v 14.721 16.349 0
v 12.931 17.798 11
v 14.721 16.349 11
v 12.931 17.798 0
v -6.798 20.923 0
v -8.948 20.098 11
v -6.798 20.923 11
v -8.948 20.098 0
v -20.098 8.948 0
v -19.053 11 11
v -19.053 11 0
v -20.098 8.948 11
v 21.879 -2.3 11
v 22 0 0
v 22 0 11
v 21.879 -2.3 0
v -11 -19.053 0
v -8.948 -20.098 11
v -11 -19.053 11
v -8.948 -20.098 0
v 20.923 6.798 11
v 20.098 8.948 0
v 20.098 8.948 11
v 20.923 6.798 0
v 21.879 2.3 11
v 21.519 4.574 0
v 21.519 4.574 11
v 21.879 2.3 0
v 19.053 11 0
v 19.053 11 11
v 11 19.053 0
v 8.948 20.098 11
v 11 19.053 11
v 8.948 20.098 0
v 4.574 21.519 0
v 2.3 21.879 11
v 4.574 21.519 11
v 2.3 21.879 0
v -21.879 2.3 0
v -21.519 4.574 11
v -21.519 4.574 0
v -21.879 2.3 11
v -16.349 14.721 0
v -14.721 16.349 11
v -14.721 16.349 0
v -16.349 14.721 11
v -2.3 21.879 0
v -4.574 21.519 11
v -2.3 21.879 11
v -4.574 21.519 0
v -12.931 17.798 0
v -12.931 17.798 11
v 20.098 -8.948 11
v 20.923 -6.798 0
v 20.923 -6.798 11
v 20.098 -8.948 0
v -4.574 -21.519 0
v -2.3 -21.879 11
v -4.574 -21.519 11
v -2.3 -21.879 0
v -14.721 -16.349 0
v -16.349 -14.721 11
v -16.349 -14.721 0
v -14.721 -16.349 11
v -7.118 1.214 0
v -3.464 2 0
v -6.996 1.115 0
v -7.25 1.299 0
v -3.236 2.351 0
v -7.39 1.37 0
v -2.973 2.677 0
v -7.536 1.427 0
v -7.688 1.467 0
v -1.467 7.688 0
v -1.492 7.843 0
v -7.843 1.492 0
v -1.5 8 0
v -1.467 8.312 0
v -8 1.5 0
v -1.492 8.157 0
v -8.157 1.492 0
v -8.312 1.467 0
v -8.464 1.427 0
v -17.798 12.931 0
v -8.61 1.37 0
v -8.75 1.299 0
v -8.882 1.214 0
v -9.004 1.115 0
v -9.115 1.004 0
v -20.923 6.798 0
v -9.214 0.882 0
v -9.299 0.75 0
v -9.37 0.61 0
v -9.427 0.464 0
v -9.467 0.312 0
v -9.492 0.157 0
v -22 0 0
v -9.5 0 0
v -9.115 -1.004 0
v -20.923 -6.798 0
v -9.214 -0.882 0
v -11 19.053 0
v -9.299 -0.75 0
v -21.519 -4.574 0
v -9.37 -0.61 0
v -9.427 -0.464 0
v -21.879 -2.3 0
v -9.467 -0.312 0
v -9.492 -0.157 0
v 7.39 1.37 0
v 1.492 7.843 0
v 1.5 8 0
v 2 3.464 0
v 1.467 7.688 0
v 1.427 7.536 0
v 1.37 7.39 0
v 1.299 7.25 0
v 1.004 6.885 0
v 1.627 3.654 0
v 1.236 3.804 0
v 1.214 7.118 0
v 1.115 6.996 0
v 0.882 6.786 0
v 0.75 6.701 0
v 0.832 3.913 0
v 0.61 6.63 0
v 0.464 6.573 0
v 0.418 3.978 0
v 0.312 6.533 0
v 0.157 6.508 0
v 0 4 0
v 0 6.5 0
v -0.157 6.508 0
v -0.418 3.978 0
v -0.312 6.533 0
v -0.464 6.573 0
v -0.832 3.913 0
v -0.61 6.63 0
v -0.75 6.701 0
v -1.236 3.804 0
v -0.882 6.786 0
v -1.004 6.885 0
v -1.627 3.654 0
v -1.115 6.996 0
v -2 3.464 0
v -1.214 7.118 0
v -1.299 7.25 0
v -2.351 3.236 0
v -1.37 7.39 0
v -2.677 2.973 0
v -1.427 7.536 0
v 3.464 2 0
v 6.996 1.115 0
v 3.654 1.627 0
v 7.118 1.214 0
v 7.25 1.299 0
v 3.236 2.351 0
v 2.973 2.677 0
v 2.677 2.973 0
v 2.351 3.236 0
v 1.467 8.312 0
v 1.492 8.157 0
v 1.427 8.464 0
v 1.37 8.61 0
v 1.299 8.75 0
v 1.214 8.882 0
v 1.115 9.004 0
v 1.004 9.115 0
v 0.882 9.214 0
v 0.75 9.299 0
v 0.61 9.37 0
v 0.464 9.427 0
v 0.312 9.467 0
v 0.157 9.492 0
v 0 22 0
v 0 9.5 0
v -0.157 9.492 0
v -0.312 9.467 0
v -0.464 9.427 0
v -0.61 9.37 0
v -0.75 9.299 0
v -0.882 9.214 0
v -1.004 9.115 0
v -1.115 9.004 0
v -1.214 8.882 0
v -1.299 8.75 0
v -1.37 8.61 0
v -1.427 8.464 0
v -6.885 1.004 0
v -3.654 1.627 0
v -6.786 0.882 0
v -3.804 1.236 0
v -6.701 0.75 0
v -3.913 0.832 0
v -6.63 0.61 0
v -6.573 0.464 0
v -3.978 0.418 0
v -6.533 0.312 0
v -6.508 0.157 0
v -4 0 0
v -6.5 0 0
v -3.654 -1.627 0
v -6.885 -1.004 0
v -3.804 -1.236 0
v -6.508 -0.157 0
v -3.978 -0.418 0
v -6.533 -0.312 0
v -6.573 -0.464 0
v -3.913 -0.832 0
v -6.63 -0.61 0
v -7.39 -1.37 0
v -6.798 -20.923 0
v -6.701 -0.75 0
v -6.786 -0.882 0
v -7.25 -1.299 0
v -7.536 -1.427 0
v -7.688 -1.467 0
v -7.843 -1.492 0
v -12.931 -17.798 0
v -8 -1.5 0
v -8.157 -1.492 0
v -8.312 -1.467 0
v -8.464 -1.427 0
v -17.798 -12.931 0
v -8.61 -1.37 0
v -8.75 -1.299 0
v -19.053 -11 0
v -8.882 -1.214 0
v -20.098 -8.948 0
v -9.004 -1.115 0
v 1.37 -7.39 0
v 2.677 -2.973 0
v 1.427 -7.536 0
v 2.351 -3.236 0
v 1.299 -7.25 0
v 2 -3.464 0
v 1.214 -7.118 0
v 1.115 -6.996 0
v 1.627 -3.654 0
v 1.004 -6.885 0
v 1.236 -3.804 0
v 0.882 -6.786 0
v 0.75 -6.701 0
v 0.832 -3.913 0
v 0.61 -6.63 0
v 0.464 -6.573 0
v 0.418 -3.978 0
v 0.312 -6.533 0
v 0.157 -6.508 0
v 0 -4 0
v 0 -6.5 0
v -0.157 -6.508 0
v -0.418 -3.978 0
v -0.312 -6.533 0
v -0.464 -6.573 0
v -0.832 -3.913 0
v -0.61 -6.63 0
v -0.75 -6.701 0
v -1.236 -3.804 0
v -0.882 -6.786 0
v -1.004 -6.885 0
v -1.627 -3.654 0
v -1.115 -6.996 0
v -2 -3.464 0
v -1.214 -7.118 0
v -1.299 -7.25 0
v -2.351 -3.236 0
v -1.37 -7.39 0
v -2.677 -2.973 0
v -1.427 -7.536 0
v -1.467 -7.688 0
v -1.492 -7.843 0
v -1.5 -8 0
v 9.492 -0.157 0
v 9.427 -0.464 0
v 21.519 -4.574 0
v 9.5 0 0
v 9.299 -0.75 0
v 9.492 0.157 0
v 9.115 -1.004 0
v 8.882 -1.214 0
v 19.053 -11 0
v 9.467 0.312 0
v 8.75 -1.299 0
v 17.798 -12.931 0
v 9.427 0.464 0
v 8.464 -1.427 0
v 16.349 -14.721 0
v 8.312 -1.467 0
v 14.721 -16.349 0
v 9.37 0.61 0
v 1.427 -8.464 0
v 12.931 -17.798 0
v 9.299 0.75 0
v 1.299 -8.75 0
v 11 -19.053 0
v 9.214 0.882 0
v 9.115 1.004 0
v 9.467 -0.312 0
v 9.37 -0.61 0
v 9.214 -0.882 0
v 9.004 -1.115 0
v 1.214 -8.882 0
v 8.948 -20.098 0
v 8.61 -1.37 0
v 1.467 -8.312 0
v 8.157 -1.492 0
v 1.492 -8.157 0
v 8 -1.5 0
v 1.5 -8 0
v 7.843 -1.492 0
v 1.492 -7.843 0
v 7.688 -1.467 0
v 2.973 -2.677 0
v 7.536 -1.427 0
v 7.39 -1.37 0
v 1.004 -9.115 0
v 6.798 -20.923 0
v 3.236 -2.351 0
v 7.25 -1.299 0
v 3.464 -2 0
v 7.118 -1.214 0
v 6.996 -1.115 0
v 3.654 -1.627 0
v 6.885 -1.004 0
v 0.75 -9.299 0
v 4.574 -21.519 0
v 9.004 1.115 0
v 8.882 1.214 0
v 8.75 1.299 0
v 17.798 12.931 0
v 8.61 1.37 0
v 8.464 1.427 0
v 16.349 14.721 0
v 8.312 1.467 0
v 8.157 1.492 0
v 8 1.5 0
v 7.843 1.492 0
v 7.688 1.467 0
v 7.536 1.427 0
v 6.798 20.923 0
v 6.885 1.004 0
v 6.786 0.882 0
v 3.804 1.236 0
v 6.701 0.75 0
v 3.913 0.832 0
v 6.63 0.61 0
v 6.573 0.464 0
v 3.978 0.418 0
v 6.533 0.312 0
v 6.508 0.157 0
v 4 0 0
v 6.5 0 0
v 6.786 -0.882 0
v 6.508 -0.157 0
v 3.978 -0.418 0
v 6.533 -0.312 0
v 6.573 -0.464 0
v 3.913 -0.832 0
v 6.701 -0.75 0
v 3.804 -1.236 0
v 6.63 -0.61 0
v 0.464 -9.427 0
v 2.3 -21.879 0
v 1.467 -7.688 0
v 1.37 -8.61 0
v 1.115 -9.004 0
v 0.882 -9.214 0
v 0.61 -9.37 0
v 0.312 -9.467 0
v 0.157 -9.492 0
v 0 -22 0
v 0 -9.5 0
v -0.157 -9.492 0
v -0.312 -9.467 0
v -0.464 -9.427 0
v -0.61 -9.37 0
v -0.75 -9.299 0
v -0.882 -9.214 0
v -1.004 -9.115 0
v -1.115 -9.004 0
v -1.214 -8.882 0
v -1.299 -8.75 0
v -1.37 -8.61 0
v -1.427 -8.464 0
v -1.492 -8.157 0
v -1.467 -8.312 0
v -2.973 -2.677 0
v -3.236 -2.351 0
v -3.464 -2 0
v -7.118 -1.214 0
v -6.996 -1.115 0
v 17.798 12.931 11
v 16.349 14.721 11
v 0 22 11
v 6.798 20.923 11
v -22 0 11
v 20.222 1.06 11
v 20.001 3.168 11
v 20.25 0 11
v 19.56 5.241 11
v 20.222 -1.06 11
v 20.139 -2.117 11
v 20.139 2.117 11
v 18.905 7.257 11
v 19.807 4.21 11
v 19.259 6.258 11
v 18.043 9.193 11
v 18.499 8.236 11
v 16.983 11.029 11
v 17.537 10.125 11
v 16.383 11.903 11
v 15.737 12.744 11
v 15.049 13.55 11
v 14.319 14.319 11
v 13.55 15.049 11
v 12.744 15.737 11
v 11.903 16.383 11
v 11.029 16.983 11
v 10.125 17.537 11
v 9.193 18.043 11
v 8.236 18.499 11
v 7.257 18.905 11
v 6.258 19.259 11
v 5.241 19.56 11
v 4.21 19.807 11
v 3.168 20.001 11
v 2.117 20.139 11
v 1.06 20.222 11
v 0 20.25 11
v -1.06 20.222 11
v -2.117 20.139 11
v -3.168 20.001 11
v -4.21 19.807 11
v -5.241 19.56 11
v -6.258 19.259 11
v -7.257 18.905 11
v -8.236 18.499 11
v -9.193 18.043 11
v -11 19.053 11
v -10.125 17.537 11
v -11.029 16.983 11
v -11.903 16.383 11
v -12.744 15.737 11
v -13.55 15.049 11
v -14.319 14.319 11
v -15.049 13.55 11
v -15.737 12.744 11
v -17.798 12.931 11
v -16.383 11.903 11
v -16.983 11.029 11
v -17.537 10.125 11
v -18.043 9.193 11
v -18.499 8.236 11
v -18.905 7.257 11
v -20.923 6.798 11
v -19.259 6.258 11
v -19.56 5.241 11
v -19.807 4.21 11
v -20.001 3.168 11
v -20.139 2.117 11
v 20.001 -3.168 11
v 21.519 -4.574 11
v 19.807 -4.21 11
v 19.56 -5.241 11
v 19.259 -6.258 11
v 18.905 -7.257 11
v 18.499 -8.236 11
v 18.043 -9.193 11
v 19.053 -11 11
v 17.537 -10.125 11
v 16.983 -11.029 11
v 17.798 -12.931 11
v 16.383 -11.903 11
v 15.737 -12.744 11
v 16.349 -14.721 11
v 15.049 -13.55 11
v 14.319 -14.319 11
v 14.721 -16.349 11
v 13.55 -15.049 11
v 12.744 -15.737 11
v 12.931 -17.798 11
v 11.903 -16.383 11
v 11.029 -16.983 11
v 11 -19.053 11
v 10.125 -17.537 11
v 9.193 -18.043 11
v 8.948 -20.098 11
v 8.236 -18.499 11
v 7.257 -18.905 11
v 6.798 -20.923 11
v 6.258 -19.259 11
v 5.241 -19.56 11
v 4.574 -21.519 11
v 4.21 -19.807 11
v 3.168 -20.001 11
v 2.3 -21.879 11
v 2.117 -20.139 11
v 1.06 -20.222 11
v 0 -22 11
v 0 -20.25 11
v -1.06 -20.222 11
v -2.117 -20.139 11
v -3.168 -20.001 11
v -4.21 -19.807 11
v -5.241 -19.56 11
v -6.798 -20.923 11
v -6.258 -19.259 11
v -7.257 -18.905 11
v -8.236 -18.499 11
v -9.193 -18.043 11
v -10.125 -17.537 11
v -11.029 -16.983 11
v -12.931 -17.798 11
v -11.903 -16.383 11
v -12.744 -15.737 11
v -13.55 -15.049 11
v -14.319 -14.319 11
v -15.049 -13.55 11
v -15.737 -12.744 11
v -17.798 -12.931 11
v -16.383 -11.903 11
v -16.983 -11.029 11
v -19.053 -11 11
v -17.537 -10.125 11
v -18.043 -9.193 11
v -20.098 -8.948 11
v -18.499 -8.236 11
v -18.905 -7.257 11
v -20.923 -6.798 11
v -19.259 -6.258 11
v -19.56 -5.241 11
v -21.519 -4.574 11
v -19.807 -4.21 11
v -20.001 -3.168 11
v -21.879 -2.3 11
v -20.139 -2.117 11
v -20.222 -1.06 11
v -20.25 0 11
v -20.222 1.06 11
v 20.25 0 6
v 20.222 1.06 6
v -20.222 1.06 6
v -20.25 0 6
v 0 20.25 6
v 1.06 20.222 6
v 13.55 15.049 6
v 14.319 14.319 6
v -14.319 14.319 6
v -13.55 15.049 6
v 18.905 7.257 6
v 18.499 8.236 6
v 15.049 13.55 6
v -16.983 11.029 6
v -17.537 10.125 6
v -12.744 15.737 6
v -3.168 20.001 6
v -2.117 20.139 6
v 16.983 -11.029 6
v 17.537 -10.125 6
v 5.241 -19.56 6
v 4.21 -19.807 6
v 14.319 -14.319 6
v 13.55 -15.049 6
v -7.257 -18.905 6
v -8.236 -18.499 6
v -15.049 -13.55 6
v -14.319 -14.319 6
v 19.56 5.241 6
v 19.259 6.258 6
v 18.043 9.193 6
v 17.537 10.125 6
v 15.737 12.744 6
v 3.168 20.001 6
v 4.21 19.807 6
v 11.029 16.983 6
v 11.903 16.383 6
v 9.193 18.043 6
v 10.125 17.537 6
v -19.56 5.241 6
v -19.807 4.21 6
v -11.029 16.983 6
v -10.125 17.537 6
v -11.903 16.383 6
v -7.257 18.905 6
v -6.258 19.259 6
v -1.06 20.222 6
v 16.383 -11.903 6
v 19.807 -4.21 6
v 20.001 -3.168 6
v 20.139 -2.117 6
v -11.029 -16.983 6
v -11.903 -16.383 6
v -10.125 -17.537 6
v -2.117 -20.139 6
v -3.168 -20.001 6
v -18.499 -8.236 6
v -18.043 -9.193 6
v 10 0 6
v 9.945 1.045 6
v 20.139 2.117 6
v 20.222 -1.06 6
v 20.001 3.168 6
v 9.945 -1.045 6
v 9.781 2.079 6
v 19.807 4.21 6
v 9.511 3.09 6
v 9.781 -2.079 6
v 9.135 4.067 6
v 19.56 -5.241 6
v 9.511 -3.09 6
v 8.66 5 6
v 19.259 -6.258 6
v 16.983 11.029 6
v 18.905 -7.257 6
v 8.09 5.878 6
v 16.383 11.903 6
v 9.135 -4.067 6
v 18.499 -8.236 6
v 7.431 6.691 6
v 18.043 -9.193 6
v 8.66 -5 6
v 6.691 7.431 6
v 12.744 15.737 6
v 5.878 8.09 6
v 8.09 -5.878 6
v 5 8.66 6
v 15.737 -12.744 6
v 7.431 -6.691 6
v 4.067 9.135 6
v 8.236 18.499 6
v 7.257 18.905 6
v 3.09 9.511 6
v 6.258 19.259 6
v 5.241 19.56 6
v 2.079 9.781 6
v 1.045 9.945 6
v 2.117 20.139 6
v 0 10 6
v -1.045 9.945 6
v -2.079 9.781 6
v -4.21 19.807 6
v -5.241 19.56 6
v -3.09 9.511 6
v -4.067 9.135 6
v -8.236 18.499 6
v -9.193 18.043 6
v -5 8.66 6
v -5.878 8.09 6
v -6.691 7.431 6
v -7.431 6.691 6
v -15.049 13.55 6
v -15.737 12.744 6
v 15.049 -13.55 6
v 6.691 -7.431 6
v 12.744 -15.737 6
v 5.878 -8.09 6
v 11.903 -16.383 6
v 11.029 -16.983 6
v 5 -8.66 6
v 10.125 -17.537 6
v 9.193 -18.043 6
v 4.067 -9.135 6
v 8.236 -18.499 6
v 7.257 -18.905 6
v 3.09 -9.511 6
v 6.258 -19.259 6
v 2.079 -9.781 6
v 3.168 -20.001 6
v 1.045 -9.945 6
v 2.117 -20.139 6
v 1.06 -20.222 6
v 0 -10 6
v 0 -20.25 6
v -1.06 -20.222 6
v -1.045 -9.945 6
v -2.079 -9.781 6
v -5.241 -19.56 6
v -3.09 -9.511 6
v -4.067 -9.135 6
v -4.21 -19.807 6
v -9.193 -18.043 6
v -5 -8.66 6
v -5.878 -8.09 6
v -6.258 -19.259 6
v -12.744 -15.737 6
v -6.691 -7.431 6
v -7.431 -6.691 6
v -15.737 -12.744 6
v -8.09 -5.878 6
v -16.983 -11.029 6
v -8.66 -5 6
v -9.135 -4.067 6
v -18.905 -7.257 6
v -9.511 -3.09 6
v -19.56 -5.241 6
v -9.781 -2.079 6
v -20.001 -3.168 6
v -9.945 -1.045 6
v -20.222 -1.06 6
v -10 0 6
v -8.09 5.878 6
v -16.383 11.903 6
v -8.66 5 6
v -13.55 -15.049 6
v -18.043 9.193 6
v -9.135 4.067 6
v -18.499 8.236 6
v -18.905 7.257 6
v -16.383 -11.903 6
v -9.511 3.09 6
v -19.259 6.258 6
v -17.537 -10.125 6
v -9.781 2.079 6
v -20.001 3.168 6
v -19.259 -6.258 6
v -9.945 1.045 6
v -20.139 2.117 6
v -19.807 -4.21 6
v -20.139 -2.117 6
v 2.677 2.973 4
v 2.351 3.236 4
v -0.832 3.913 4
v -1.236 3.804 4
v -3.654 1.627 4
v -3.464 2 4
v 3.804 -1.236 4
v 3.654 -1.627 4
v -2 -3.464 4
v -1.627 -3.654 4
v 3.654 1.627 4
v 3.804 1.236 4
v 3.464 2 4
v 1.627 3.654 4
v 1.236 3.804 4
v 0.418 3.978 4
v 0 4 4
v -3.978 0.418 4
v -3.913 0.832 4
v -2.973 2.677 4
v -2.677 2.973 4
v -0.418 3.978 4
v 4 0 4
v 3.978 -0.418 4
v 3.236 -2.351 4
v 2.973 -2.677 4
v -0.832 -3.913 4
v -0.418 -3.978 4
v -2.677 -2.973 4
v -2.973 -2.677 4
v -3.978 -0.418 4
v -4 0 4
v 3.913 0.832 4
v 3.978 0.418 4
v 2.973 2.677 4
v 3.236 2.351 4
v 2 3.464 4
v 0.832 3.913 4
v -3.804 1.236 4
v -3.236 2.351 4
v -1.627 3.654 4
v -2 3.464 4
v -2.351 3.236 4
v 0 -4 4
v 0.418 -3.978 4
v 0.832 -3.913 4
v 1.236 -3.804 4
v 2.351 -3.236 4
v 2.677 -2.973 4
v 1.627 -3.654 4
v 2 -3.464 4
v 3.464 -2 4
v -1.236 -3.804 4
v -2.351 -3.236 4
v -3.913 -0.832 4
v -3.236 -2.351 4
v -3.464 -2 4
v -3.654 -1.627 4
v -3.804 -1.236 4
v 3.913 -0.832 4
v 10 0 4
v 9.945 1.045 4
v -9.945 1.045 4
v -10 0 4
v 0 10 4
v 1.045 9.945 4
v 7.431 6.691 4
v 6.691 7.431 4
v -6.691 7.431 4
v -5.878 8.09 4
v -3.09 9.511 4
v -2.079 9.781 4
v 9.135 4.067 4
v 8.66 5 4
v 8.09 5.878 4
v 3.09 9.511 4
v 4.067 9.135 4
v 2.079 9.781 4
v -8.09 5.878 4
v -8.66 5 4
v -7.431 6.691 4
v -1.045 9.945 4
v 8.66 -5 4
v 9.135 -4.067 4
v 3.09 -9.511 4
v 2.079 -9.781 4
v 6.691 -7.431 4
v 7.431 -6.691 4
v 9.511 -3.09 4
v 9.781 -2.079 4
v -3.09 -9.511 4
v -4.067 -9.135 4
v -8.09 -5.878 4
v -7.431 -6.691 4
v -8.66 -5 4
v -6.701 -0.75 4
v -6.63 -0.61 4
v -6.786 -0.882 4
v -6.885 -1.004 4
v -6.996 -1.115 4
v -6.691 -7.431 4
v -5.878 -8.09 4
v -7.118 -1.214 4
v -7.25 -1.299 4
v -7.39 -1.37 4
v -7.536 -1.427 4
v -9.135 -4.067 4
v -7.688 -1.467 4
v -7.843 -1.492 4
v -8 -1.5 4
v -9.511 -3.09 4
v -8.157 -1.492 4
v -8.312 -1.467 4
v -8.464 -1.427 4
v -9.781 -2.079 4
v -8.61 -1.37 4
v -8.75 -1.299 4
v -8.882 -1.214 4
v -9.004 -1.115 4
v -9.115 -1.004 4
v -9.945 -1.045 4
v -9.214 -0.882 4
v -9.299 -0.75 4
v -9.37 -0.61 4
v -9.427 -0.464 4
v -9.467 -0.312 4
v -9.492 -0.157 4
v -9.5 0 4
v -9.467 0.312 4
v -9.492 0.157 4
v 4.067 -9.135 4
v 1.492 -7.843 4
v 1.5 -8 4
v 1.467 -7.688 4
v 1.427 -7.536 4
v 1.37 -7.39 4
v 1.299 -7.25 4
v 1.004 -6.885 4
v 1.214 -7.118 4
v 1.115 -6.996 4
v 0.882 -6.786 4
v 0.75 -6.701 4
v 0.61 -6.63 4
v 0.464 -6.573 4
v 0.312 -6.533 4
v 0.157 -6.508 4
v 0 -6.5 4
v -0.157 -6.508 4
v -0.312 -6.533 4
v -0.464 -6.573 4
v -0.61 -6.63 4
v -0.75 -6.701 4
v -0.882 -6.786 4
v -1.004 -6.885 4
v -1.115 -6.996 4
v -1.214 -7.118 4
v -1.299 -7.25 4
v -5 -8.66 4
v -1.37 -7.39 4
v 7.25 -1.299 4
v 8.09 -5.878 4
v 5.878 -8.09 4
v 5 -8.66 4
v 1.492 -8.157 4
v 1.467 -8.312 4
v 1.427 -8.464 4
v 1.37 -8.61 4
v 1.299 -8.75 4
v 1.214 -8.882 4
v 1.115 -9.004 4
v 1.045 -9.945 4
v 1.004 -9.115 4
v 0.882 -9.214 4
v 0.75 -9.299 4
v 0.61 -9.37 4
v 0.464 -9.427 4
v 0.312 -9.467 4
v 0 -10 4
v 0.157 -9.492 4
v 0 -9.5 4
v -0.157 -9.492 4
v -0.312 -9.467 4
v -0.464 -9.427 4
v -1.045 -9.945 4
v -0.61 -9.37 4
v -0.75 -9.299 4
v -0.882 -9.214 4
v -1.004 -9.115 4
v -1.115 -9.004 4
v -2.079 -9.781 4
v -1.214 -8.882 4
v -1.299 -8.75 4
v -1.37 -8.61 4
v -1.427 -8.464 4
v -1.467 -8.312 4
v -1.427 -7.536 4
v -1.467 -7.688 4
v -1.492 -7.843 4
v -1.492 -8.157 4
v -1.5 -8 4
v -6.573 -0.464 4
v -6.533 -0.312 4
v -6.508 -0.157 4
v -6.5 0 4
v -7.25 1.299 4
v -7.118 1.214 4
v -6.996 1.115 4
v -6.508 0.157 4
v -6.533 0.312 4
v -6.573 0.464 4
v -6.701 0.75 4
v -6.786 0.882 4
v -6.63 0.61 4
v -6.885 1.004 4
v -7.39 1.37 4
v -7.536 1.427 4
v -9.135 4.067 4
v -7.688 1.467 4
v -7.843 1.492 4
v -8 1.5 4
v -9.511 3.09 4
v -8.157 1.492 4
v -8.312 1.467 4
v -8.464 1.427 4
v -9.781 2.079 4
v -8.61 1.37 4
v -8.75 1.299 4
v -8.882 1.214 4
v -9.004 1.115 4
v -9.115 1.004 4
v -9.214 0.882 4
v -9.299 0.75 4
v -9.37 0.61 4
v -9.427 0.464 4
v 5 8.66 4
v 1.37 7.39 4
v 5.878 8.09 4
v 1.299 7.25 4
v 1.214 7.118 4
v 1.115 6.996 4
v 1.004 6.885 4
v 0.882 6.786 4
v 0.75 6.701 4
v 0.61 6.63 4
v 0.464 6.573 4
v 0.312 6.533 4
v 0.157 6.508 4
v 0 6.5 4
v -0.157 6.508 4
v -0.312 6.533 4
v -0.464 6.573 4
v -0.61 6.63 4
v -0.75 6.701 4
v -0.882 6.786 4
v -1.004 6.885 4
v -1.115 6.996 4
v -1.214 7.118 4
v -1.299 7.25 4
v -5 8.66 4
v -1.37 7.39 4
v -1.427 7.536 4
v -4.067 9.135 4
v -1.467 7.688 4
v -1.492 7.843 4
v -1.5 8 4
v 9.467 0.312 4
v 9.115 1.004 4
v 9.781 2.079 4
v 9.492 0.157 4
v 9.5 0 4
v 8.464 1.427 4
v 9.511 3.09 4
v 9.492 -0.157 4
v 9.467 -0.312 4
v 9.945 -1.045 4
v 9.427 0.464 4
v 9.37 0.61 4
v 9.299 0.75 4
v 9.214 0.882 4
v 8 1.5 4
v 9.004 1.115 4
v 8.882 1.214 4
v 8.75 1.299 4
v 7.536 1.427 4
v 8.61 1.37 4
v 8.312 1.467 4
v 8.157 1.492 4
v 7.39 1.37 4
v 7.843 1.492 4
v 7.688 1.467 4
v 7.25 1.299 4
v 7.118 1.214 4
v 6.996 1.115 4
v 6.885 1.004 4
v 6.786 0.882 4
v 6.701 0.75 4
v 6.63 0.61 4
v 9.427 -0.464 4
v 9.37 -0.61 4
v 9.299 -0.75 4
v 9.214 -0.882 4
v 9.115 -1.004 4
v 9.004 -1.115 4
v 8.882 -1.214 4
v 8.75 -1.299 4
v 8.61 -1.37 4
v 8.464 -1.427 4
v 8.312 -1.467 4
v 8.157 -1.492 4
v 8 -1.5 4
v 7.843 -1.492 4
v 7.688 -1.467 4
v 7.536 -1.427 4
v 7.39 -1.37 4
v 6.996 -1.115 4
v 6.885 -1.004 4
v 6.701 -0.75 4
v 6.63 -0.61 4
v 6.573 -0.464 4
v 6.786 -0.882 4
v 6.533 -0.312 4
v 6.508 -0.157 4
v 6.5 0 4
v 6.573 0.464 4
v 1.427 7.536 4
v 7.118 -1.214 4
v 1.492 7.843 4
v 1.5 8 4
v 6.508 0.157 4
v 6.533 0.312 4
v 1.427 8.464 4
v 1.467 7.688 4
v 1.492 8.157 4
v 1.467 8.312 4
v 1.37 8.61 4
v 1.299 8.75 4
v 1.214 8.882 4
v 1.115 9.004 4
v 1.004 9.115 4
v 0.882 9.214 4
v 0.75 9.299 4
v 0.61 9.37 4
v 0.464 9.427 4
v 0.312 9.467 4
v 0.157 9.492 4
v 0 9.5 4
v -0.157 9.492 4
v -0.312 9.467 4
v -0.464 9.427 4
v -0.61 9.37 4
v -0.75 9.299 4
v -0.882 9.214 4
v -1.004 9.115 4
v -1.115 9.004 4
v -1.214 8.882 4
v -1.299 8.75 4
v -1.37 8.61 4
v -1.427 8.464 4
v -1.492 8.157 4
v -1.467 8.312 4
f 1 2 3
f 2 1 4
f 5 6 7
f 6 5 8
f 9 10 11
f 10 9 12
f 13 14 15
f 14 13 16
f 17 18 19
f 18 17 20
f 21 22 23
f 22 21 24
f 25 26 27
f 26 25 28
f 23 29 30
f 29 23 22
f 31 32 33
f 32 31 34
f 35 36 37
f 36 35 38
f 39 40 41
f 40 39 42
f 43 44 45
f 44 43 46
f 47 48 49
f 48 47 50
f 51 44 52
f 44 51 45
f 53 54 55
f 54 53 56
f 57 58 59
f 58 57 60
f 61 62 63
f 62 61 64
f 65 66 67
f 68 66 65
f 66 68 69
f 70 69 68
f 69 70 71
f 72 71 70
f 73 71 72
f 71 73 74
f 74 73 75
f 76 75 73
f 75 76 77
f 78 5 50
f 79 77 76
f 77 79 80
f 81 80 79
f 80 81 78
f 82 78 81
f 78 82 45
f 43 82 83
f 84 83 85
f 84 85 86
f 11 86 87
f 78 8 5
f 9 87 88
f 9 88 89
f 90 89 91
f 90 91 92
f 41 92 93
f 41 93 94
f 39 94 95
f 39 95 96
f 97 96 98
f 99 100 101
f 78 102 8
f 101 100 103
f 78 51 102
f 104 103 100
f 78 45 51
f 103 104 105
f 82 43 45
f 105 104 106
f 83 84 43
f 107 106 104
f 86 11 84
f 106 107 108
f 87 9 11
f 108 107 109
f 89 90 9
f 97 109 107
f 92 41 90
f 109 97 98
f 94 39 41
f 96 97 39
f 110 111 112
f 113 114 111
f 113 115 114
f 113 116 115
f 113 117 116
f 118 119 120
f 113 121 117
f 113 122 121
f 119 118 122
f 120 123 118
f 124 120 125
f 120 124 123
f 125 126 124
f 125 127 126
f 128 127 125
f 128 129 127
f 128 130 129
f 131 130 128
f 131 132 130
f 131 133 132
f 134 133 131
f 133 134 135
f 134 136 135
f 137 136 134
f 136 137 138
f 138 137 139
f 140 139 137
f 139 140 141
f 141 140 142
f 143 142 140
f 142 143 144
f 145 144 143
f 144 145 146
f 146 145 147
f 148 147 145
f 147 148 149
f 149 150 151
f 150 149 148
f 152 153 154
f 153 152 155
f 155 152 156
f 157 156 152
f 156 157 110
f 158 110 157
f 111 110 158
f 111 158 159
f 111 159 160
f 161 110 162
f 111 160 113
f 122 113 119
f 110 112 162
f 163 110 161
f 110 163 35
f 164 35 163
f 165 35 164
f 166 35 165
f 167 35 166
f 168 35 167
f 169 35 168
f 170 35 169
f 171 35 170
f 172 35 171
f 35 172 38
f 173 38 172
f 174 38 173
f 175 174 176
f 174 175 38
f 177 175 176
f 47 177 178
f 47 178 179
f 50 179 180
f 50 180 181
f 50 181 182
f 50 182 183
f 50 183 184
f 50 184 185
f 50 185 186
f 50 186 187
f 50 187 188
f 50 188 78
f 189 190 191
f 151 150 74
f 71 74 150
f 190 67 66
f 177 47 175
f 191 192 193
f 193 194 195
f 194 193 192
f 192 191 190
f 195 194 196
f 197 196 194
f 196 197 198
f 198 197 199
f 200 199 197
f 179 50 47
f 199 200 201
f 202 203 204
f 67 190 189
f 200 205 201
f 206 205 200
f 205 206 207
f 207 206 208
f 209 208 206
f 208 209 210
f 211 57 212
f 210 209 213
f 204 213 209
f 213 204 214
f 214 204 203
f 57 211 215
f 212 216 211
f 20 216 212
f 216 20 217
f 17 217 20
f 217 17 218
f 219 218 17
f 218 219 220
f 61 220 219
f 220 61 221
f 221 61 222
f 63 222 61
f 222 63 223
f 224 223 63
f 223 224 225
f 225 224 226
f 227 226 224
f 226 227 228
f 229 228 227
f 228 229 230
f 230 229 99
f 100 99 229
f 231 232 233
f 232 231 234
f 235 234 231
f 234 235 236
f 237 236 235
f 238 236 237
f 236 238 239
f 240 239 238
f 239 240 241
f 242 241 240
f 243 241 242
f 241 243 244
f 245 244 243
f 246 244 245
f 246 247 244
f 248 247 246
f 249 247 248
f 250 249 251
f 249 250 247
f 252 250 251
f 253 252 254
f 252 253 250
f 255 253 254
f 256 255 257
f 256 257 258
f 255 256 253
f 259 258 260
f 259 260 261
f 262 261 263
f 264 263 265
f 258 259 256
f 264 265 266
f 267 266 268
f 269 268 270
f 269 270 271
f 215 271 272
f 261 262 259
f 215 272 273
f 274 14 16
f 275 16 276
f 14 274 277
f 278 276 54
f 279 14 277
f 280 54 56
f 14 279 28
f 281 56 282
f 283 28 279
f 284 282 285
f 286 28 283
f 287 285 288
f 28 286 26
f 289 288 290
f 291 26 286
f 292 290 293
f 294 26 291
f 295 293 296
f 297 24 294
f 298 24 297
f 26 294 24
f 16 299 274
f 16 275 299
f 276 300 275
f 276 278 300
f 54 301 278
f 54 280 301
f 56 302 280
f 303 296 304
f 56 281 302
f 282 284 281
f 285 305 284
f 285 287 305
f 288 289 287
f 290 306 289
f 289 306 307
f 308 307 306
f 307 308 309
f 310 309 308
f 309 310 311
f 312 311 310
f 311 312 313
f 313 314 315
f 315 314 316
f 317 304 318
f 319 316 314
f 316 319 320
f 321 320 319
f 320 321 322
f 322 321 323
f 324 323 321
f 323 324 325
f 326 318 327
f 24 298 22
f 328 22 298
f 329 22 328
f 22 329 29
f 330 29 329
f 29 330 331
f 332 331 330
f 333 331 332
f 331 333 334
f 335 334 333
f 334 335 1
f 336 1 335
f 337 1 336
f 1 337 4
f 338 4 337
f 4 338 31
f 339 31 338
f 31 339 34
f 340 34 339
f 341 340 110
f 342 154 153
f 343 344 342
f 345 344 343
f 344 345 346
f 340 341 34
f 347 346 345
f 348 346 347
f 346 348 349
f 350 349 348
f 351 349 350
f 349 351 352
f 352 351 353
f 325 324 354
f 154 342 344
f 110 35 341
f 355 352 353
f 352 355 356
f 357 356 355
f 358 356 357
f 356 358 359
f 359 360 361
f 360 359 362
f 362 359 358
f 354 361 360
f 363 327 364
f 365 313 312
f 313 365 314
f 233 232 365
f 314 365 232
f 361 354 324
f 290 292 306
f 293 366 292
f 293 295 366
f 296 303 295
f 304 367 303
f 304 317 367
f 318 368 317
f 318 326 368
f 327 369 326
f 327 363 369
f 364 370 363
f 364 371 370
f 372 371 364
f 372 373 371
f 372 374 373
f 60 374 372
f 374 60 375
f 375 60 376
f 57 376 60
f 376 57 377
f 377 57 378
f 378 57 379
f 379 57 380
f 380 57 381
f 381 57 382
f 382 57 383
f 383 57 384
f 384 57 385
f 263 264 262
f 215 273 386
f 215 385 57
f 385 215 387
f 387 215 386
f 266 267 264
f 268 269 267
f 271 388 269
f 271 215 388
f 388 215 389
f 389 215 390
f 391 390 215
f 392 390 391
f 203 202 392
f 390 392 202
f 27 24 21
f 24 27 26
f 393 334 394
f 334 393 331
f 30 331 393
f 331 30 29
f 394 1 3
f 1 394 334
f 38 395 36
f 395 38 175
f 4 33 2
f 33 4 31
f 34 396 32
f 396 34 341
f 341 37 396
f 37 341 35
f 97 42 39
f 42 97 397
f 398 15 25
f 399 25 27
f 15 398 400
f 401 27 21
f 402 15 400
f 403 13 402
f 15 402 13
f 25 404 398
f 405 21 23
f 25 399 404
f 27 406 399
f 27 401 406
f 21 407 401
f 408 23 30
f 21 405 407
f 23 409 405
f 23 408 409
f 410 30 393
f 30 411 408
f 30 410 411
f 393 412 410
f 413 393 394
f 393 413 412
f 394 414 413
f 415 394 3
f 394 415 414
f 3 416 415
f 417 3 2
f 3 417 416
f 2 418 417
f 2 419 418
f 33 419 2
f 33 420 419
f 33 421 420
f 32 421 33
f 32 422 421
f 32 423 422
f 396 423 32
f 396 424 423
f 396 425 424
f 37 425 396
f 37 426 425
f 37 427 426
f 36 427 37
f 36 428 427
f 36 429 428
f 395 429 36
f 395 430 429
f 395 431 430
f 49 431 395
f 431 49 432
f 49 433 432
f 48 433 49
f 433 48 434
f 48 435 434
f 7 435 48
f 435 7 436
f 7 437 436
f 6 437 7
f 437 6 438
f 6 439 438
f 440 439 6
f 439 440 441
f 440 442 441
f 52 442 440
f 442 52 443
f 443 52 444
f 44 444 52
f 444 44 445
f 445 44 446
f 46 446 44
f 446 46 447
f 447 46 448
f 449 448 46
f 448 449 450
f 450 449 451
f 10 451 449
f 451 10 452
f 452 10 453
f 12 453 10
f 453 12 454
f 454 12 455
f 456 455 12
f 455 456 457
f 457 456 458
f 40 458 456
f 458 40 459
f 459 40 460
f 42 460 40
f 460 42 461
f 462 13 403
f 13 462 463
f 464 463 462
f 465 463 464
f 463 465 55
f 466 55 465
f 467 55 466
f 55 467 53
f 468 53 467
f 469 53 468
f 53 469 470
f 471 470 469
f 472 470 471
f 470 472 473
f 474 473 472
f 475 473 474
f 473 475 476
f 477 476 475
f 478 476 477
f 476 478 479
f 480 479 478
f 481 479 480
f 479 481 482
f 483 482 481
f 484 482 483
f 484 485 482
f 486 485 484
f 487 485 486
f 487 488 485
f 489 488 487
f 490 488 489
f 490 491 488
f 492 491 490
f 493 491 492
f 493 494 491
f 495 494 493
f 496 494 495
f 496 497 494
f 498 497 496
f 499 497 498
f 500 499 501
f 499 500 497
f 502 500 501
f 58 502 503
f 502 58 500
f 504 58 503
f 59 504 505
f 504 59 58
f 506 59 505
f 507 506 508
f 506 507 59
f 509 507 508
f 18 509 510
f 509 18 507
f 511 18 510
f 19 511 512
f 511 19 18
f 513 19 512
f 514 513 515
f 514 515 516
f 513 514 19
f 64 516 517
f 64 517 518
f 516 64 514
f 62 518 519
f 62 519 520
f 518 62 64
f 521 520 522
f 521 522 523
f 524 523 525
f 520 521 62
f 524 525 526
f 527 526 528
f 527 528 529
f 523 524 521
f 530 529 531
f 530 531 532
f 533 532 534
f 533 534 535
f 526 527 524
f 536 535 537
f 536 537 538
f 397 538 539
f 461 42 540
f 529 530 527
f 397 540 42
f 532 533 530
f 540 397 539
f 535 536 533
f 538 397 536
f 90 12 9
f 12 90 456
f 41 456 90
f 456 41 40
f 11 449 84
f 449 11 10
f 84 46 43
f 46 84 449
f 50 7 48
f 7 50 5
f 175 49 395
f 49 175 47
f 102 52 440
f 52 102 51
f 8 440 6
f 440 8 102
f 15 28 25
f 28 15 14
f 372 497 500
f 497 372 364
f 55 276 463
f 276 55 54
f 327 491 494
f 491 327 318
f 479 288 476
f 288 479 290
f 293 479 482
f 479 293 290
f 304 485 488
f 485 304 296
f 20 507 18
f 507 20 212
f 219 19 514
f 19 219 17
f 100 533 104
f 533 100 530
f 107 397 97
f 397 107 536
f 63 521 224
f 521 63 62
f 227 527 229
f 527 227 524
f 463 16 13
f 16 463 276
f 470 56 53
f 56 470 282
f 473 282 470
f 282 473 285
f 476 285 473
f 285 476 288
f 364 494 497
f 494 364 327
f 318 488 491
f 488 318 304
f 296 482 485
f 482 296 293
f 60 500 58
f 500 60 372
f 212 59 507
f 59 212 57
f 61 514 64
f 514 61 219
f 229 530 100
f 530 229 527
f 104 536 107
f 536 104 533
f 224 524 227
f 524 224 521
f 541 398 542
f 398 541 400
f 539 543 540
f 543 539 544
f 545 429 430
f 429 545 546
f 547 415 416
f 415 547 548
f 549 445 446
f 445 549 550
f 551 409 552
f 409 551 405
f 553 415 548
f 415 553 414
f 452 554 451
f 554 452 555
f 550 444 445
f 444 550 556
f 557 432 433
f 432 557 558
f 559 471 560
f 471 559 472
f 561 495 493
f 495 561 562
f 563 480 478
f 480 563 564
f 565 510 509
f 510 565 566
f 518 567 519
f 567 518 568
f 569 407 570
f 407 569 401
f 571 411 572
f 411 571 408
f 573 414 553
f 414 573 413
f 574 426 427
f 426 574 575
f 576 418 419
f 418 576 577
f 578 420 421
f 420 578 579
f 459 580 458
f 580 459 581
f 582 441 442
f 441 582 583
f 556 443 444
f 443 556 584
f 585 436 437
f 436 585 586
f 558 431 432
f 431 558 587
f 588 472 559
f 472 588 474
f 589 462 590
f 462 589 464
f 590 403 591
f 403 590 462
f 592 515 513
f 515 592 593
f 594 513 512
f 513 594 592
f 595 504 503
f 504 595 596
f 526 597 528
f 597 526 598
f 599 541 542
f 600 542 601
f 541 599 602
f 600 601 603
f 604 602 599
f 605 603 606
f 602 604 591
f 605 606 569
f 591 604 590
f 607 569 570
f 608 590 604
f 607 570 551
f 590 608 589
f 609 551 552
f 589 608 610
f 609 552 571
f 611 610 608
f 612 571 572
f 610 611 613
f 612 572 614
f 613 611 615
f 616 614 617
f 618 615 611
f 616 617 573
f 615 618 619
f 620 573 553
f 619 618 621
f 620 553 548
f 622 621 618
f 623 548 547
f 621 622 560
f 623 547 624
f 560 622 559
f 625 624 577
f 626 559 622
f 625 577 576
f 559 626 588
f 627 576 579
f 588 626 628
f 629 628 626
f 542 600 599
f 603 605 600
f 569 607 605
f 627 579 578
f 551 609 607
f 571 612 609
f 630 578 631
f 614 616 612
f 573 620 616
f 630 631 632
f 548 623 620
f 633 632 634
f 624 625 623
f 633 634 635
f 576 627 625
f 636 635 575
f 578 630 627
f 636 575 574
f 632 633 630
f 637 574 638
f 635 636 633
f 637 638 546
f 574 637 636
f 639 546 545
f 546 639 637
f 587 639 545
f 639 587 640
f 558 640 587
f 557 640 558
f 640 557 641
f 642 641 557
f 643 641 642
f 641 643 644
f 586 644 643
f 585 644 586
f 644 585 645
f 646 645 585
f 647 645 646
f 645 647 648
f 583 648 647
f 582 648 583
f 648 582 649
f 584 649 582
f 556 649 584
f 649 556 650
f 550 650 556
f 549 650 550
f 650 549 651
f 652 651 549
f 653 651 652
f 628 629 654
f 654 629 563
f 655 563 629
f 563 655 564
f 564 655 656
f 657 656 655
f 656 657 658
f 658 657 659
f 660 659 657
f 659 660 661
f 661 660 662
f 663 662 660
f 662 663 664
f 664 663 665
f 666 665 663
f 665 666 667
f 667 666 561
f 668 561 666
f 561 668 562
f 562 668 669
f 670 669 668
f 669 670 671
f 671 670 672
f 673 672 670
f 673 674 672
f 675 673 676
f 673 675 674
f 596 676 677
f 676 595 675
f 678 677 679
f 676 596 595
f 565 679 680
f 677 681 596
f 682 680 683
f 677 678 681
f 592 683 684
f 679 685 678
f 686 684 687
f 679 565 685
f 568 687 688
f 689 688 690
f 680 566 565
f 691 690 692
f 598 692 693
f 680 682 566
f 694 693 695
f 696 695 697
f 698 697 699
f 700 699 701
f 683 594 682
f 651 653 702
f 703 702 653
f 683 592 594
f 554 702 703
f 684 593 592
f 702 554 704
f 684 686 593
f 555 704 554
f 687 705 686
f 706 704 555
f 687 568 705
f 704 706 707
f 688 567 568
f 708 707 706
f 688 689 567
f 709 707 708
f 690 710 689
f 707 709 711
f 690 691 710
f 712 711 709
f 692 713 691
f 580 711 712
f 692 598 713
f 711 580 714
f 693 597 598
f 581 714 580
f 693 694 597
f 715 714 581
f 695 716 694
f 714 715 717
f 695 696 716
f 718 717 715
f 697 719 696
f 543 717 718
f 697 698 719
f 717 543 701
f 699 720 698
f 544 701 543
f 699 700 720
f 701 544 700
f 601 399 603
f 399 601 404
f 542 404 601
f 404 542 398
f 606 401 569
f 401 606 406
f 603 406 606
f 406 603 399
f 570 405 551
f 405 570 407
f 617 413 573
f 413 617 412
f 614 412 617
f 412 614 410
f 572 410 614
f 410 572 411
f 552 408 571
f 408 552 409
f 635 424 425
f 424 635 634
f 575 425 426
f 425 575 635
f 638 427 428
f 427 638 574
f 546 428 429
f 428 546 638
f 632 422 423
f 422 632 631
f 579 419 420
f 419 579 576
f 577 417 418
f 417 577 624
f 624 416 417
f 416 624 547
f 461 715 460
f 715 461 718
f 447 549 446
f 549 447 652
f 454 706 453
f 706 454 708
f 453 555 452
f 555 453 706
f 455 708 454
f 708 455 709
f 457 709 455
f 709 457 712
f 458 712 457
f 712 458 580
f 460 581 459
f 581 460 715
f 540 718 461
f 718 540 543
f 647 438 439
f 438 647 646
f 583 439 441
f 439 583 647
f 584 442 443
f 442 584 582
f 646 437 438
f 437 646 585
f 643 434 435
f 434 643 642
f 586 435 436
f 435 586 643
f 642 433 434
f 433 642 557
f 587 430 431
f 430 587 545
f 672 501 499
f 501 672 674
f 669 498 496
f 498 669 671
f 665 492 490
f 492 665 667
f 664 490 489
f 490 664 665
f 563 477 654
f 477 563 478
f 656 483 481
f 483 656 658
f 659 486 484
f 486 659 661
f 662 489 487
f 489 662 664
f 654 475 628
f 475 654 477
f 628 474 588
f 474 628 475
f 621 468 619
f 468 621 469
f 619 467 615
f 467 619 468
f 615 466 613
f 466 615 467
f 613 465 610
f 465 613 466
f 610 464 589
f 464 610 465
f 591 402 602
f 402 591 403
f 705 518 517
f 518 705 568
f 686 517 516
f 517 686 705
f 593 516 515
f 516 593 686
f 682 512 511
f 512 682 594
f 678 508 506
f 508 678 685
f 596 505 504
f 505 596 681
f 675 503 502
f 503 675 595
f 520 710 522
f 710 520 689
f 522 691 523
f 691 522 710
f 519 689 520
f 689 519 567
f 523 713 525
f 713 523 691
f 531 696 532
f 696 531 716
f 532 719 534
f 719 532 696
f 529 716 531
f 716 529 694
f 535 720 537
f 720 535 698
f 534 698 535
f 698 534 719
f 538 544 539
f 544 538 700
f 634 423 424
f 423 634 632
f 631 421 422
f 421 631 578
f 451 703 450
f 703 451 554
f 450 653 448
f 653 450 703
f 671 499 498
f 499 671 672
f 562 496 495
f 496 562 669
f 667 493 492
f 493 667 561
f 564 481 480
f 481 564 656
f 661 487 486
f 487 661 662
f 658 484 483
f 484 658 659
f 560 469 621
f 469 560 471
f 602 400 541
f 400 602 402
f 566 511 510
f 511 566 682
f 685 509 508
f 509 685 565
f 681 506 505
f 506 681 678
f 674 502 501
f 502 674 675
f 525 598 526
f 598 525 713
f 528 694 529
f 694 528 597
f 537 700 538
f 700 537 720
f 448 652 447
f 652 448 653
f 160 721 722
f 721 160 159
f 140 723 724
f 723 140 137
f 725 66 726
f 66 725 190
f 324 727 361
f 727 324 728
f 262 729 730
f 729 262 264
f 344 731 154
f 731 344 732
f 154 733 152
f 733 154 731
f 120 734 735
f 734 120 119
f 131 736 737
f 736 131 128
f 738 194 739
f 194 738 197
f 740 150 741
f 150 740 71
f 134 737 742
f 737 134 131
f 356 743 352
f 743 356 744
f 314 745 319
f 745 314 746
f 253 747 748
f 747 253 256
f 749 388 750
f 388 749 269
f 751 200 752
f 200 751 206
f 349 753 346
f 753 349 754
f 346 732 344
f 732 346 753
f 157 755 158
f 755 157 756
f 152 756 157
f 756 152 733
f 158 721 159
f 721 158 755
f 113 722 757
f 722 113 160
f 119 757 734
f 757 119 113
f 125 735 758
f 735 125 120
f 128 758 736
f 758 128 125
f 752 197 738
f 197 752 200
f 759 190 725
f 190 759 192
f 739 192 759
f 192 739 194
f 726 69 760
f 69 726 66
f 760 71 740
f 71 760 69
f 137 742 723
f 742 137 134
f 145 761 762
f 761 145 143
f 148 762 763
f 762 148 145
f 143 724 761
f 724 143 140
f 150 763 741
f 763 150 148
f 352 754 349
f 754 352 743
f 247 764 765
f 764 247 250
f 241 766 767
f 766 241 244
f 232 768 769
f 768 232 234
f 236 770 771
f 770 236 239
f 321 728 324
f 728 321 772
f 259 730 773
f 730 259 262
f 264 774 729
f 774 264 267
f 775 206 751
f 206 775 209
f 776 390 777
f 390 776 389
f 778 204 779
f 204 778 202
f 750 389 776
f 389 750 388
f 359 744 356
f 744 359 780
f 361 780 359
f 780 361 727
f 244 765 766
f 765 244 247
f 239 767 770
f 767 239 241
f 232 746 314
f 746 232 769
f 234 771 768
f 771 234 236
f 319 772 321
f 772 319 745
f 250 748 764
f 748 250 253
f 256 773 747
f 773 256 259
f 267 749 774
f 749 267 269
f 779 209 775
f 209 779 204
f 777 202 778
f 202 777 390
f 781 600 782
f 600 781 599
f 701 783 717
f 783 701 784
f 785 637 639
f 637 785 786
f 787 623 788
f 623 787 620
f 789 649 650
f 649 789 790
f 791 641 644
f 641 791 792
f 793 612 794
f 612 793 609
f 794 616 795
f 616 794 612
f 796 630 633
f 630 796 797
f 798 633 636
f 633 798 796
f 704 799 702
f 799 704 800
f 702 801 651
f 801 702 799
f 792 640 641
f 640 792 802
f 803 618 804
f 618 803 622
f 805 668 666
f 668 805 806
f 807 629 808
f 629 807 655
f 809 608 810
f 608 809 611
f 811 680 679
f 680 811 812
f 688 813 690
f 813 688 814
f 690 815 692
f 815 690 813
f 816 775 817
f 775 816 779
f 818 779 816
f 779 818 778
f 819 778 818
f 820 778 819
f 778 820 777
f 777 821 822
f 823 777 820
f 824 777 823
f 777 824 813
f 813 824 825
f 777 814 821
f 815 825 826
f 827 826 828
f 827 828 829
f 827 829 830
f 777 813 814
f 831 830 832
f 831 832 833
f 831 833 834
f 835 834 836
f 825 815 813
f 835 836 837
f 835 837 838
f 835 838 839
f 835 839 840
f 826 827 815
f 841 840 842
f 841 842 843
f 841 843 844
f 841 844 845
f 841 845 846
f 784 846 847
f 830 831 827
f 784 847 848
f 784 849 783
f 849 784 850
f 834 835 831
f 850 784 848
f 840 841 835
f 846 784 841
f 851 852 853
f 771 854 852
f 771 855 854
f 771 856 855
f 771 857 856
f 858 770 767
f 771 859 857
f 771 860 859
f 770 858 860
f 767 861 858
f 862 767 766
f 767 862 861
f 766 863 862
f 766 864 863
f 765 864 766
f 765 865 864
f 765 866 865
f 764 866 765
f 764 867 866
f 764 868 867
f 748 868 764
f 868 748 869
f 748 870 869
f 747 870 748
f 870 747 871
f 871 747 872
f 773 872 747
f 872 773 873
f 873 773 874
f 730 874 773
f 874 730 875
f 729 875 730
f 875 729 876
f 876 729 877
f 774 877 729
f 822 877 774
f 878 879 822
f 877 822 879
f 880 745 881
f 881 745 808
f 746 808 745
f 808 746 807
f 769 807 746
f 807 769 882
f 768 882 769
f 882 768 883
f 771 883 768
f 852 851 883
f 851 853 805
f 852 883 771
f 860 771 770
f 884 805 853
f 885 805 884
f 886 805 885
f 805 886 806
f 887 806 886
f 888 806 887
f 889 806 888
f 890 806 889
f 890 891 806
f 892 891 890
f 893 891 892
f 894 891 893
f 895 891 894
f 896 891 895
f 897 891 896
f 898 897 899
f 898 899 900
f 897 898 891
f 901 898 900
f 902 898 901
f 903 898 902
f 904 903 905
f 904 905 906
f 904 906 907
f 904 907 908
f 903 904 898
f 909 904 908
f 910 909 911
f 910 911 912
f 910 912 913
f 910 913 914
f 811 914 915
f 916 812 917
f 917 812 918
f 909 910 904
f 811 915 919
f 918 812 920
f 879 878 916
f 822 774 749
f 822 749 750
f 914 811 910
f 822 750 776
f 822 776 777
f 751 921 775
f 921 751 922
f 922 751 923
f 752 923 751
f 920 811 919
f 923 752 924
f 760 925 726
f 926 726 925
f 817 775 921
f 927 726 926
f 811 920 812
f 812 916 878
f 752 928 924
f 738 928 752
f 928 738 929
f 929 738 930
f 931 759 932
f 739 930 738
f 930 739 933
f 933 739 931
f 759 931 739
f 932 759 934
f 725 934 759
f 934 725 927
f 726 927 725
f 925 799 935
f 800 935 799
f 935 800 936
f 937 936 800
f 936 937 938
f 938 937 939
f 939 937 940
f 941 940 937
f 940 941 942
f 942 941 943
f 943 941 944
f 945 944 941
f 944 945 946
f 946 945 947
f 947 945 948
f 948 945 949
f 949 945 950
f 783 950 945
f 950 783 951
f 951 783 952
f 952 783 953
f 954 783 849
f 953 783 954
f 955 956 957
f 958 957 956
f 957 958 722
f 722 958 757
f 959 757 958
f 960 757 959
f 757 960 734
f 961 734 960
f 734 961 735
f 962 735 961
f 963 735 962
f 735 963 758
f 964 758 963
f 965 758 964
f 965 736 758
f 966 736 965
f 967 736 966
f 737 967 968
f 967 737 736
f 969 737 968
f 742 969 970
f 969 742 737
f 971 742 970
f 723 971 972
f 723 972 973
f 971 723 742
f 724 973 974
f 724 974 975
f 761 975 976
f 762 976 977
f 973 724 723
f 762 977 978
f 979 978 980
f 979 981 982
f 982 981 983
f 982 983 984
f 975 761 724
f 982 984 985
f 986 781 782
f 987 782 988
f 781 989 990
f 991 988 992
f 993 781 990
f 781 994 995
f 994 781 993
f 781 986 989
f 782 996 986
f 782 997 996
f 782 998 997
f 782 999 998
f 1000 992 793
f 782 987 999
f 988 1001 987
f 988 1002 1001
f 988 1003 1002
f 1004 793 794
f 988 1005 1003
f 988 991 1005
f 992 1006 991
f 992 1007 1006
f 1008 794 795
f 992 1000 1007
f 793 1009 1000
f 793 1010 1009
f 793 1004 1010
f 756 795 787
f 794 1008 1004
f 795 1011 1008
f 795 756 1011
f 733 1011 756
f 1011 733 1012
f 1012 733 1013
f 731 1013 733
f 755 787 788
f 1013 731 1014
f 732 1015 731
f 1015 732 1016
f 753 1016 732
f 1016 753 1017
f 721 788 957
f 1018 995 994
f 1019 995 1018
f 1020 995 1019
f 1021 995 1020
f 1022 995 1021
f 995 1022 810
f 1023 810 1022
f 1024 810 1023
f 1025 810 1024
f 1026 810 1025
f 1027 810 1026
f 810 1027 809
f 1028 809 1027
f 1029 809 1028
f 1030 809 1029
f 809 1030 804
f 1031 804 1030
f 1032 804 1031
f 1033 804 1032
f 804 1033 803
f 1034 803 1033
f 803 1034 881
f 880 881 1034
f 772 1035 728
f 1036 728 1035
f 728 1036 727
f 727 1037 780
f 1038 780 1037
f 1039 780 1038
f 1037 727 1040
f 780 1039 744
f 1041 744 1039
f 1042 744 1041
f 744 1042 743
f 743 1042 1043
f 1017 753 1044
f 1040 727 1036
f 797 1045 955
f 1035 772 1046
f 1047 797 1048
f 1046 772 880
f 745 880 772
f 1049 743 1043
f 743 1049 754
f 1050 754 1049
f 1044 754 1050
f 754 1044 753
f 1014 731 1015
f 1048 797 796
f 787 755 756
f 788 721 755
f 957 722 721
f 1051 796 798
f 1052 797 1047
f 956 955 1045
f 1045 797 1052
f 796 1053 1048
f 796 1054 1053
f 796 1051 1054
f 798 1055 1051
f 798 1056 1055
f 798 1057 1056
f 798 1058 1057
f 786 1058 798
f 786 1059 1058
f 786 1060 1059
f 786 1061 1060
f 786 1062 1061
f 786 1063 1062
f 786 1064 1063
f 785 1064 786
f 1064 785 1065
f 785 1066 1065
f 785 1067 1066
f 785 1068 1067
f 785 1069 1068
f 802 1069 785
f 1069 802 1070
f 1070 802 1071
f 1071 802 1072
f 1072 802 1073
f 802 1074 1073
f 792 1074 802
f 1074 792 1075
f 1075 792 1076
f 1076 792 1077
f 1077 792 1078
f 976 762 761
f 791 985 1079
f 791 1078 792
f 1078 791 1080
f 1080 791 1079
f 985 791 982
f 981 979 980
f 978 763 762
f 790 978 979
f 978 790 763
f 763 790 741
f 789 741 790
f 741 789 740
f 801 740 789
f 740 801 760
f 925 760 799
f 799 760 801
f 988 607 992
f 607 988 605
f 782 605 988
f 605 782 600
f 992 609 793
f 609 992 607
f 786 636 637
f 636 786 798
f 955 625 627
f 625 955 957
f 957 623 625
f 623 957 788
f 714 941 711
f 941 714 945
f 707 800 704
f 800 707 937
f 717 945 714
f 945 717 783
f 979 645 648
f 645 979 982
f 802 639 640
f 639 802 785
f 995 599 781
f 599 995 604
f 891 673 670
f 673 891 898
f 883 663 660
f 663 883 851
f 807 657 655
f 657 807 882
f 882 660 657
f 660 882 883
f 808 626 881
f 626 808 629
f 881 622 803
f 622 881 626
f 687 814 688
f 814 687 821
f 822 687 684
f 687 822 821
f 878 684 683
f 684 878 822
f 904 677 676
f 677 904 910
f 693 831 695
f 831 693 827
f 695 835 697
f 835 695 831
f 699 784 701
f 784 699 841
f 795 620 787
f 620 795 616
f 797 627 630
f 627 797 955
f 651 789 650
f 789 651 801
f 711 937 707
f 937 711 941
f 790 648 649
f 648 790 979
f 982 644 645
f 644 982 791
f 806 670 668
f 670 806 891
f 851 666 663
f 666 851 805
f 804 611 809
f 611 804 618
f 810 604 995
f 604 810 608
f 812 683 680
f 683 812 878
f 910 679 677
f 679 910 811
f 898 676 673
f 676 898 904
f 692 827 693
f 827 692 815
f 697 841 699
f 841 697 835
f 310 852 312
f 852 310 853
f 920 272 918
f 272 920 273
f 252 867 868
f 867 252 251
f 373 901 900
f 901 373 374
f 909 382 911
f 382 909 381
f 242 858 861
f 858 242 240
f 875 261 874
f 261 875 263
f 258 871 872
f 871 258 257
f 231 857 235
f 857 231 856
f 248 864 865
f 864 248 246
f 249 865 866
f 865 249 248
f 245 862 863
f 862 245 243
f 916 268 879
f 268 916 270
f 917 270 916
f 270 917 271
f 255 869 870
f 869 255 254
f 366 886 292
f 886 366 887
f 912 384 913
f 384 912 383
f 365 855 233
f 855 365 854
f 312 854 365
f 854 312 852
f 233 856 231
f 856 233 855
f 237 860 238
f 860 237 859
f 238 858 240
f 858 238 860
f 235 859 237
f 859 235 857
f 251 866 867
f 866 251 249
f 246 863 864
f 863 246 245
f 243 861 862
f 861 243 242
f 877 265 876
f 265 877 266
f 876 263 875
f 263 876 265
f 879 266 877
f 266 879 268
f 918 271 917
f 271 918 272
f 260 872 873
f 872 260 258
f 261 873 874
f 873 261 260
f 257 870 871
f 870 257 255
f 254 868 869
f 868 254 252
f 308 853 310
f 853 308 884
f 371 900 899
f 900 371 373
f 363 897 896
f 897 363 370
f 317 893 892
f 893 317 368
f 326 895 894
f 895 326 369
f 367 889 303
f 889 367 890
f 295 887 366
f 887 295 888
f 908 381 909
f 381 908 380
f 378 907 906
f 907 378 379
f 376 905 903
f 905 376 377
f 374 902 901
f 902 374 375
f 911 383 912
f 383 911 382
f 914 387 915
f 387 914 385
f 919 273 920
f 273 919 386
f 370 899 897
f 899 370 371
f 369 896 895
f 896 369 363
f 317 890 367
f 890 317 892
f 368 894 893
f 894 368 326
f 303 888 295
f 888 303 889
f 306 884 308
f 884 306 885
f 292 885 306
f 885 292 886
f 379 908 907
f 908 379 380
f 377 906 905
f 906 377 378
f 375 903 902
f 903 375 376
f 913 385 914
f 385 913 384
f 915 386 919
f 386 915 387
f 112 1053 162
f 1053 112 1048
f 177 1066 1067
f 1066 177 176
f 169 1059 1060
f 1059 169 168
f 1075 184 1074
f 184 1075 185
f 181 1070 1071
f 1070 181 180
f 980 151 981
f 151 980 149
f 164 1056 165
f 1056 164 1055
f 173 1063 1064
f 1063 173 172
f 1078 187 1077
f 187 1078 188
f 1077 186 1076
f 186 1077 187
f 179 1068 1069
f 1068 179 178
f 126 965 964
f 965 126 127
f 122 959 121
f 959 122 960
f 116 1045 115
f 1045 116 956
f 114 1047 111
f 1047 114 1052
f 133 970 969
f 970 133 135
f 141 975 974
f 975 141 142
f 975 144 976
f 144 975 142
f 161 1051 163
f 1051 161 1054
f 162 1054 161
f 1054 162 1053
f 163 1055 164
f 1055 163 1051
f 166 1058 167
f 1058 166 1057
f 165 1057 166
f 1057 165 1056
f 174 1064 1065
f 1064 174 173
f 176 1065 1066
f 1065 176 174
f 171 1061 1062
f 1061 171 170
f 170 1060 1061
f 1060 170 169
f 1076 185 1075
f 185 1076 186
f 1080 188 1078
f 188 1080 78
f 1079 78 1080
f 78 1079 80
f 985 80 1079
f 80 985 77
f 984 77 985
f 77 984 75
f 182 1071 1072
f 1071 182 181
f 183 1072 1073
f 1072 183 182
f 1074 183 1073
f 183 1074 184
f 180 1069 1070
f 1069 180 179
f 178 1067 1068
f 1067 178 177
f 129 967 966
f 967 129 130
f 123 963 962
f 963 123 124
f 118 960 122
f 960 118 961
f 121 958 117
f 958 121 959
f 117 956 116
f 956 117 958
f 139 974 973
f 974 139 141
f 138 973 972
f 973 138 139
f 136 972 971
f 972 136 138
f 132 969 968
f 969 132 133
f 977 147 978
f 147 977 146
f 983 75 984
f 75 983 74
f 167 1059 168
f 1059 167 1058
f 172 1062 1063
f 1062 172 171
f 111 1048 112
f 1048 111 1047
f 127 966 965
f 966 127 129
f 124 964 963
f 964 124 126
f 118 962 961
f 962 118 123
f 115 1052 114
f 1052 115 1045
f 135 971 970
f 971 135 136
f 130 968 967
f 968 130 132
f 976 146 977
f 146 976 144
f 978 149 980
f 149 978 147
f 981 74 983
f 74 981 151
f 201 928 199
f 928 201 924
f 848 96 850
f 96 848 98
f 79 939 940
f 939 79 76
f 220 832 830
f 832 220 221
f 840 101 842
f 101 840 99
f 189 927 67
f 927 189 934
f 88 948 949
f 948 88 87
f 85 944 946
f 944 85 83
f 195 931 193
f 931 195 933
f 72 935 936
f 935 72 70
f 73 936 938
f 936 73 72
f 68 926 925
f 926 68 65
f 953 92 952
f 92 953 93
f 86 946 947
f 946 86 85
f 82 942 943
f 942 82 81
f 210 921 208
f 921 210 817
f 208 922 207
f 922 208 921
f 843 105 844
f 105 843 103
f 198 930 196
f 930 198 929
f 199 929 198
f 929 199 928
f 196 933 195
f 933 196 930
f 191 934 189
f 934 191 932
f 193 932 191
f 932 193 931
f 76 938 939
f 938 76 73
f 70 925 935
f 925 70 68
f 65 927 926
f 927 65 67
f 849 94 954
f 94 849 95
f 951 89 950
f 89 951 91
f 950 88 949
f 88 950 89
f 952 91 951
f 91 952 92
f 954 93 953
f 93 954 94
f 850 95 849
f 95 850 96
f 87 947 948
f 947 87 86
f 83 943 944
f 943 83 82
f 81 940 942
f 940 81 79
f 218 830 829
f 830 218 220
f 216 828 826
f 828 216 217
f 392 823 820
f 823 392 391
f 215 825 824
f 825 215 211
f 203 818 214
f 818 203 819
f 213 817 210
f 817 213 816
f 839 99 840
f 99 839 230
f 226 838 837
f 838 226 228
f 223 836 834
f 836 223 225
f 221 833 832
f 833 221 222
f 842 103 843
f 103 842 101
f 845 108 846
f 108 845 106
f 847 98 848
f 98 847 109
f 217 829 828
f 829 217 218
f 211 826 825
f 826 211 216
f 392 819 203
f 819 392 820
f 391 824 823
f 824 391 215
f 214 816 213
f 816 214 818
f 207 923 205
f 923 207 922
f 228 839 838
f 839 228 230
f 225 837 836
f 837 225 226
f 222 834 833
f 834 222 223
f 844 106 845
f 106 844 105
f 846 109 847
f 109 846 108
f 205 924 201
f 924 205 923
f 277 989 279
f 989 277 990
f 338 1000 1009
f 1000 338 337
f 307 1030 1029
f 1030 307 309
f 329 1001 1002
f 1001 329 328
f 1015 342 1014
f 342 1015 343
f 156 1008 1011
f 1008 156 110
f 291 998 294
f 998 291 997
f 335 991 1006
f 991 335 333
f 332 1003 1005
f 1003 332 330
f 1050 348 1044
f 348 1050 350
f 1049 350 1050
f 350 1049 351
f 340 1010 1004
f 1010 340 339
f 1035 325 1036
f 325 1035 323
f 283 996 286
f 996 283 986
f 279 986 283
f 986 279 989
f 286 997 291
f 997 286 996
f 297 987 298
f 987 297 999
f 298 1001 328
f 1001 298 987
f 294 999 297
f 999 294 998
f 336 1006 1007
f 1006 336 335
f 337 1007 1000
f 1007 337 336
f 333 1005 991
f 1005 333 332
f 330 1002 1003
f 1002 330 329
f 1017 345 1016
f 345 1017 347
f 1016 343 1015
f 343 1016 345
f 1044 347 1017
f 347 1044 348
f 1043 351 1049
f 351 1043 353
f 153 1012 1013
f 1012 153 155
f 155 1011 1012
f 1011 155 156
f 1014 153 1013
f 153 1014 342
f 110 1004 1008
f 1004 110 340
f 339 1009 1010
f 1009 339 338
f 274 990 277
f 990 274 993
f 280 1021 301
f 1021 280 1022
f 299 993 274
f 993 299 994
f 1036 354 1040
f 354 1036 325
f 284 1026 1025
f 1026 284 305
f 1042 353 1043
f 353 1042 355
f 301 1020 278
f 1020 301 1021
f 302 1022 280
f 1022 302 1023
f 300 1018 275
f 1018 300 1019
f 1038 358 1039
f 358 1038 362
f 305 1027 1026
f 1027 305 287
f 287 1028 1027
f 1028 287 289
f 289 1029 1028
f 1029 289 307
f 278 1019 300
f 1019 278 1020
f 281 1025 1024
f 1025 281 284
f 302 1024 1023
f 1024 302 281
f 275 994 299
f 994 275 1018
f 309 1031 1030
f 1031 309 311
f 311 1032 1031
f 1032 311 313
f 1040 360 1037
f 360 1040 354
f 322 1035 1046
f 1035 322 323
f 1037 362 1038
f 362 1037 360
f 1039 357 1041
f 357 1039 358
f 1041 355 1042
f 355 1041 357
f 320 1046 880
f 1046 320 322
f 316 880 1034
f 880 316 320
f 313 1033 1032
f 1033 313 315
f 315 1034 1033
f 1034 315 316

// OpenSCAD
include <BOSL/constants.scad>
use <BOSL/shapes.scad>
use <BOSL/transforms.scad>
use <BOSL/masks.scad>

$fn=60; //circle smoothness

main();
  
module main(){
  difference(){
    color("lime") cylinder(h=11, d=44); // outer shell
    color("green") up(6) cylinder(h=99, d=40.5, $fn=120); //cutout for trackpoint
    color("pink") cylinder(h=99, d=8); //hole for t-nut
    color("blue") up(4) cylinder(h=99, d=20); // countersink for t-nut
    color("orange") forward(8) cylinder(h=99, d=3); // t-nut tab
    color("orange") back(8) cylinder(h=99, d=3); // t-nut tab
    color("orange") left(8) cylinder(h=99, d=3); // t-nut tab
    color("orange") right(8) cylinder(h=99, d=3); // t-nut tab
  }
}  
